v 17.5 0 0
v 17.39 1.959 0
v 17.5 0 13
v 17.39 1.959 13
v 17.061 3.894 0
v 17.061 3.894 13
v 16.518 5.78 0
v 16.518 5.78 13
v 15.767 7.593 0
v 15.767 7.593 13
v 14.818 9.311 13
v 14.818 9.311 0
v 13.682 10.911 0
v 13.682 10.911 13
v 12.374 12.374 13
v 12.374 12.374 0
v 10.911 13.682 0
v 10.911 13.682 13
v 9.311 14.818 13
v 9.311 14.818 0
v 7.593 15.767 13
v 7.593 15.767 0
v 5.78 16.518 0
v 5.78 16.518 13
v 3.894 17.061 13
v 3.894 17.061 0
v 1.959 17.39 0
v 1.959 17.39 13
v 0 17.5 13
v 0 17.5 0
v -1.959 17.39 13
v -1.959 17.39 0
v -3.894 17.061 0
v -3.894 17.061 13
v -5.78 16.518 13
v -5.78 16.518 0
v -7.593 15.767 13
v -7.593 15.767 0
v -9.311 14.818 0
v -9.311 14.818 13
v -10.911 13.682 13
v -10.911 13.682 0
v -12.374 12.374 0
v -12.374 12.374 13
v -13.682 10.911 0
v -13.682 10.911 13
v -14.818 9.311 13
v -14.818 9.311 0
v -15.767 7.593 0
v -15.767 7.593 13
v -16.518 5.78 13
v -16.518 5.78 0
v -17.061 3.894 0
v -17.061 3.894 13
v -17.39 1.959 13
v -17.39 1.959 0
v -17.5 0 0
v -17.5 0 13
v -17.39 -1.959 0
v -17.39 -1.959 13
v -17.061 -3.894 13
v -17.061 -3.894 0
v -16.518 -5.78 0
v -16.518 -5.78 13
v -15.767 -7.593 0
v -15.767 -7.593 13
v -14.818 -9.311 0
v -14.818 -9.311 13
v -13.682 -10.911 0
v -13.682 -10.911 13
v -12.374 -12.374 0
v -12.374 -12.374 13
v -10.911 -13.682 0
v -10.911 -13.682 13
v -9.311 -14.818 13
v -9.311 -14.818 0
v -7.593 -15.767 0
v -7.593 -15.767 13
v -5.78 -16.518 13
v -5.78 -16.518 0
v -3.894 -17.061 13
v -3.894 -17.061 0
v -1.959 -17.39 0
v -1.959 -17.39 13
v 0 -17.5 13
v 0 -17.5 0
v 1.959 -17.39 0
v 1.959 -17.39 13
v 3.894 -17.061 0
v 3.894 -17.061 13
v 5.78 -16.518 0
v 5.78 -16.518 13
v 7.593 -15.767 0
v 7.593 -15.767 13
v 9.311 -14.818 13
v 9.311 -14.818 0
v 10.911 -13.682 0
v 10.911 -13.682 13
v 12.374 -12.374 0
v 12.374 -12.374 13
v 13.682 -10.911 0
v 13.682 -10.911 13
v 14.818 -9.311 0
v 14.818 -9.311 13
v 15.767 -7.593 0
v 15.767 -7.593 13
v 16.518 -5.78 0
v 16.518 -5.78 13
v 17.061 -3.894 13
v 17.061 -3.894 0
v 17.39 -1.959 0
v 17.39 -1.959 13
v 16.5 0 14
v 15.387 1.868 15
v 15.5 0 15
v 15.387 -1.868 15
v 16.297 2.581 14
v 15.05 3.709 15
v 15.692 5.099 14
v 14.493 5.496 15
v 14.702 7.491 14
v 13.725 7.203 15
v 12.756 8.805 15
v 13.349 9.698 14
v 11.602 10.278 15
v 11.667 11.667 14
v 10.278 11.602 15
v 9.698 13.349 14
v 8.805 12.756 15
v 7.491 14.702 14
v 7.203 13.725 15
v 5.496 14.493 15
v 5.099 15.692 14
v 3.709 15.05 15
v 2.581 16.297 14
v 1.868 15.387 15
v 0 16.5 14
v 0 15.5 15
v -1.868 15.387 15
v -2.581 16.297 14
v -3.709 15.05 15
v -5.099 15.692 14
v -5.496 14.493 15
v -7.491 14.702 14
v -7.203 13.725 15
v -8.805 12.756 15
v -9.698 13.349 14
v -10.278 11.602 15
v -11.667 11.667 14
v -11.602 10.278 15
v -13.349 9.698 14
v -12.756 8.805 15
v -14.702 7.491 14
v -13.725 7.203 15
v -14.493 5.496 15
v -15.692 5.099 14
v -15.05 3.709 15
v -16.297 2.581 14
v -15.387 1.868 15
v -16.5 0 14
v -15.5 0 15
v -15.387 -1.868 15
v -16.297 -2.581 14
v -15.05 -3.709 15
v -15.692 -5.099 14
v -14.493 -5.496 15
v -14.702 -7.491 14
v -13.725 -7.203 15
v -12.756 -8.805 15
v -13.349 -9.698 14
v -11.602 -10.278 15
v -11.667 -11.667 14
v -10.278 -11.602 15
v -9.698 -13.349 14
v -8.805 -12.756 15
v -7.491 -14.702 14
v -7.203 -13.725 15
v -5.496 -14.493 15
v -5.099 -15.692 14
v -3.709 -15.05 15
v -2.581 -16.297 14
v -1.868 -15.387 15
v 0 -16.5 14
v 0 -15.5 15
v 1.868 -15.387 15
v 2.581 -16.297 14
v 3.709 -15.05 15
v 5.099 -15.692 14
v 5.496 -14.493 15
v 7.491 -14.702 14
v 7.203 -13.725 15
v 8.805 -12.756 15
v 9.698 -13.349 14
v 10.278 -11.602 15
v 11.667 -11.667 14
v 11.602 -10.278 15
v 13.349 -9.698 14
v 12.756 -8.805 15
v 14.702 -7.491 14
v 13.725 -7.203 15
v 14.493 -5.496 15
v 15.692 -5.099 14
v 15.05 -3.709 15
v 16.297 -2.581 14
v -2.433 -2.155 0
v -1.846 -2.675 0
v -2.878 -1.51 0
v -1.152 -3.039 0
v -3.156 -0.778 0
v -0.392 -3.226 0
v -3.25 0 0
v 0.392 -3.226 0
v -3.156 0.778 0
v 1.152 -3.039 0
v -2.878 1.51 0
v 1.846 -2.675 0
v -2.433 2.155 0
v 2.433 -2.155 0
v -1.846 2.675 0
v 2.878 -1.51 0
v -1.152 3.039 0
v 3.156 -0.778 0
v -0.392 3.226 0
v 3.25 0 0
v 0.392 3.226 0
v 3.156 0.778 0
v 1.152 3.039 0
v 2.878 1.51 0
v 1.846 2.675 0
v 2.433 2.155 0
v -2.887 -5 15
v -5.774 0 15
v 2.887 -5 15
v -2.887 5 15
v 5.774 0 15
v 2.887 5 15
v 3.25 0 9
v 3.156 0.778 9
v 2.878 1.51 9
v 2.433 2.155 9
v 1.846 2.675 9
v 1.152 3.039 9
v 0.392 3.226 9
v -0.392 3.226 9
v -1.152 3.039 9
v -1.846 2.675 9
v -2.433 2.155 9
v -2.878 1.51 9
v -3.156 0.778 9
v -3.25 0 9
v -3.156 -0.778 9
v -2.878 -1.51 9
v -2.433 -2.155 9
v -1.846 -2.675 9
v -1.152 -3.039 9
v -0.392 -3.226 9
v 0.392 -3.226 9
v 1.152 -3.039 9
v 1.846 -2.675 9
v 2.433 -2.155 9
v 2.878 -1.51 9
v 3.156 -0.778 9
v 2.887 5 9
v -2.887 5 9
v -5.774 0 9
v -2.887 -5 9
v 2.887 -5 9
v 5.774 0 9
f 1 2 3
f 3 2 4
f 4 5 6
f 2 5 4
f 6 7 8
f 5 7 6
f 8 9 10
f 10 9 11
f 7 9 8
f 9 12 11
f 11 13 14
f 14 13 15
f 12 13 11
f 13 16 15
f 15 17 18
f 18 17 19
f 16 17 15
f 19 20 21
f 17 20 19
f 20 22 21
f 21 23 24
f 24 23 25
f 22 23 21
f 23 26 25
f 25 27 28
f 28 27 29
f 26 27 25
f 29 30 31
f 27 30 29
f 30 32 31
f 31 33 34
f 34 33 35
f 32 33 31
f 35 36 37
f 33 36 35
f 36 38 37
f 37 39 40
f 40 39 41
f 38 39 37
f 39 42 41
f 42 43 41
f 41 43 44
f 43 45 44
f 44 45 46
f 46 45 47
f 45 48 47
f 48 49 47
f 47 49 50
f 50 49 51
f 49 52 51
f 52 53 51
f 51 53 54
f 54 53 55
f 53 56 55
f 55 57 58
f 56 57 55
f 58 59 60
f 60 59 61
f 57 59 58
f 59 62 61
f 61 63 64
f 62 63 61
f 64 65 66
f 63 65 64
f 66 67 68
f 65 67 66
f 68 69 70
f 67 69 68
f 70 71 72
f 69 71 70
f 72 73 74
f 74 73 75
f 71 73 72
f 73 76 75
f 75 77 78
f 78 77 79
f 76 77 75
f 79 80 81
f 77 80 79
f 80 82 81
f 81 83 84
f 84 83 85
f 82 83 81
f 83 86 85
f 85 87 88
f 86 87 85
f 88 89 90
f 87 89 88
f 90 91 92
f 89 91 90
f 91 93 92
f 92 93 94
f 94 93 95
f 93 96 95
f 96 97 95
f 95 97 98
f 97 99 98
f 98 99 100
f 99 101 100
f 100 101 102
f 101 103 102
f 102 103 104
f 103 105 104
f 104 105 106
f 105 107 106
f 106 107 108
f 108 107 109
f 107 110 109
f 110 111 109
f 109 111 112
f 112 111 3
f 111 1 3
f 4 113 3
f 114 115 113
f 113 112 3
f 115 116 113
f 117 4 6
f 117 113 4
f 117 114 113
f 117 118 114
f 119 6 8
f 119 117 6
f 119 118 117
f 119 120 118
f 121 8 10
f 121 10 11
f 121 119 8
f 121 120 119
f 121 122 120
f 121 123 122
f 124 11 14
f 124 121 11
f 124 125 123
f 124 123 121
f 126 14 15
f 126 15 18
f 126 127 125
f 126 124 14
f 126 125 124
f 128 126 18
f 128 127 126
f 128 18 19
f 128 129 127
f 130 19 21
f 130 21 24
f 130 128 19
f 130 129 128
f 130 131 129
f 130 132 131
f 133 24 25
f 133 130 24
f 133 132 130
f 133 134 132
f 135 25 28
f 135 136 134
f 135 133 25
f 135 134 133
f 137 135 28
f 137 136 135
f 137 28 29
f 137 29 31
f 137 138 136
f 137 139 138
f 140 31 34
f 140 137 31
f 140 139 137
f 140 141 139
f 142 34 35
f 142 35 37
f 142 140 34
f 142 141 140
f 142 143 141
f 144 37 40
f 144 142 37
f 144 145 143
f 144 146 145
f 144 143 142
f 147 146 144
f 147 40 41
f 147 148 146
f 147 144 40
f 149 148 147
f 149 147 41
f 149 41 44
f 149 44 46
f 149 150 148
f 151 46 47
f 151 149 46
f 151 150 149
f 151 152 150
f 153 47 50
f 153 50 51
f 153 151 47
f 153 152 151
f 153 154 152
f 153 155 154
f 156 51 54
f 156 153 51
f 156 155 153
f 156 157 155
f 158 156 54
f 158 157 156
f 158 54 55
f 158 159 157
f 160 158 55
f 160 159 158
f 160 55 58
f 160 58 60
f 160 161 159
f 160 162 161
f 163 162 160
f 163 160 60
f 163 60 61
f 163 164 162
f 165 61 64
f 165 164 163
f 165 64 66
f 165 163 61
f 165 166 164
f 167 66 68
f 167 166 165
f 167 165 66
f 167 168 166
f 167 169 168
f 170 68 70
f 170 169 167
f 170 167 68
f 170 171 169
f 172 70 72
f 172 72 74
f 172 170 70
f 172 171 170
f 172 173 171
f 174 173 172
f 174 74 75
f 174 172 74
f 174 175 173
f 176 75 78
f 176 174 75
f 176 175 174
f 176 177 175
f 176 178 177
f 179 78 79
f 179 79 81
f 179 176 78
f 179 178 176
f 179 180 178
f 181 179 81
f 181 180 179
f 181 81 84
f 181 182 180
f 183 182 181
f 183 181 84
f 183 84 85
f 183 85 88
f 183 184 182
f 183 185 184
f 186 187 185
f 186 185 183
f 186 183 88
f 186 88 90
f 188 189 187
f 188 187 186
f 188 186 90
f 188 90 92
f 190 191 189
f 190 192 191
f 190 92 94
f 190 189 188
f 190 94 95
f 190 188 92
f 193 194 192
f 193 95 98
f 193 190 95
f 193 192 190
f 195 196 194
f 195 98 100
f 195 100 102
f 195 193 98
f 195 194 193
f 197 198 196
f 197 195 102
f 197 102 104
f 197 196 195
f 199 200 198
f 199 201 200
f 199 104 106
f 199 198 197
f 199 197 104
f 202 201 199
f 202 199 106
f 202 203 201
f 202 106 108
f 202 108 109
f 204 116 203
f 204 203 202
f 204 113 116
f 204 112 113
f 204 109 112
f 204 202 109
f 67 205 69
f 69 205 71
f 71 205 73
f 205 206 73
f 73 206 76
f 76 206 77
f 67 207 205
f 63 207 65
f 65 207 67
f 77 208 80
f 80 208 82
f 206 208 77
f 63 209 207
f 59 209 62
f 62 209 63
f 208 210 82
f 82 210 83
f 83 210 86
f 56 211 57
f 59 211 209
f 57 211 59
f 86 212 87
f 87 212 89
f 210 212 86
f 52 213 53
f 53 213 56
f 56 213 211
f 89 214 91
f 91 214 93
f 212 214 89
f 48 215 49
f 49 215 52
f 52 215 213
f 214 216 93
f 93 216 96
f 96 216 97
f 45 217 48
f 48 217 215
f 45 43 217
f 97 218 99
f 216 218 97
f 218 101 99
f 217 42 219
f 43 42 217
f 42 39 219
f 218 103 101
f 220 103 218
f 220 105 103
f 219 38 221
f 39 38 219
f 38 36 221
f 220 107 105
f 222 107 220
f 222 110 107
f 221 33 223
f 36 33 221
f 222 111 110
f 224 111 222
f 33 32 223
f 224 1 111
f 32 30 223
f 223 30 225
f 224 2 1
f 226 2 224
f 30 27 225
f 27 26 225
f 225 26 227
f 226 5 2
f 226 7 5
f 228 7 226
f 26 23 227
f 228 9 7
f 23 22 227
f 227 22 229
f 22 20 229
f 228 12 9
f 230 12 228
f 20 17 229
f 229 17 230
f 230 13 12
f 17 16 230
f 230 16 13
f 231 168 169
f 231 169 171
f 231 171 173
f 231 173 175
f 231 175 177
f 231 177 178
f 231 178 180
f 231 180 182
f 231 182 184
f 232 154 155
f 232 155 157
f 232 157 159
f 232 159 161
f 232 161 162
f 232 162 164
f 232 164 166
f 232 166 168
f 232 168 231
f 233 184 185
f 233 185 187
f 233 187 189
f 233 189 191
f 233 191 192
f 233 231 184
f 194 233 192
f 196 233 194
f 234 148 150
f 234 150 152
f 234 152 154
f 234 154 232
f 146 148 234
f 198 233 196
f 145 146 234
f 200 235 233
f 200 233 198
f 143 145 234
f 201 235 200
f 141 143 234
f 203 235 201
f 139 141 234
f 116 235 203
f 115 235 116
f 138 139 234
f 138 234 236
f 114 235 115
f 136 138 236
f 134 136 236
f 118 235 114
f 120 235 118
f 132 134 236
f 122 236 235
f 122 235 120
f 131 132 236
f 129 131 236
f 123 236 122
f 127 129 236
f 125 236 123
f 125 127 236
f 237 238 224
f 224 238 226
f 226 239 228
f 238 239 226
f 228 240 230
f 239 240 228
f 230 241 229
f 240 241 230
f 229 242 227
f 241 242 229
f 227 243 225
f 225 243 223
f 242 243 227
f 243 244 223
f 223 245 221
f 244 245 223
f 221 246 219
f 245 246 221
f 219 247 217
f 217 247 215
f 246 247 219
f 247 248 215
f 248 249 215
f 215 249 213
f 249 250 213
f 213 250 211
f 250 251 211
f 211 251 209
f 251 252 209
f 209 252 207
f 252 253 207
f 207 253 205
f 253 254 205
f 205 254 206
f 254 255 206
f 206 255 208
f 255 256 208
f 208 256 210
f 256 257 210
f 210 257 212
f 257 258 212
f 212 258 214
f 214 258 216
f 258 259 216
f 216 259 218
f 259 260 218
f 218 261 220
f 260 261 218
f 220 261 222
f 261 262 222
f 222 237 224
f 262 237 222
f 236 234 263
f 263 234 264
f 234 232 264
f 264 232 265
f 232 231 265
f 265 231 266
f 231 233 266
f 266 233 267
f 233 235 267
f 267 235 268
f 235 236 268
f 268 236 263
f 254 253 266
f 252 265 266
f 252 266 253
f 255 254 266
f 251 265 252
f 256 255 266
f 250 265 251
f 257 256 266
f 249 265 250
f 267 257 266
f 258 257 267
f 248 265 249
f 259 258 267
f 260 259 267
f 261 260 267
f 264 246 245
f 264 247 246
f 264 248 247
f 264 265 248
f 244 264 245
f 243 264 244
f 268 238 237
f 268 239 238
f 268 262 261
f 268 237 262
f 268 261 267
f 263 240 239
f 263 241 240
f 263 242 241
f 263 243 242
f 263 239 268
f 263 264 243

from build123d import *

# Parameters (mm, degrees)
SKETCH_R        = 17.5
PAD_DEPTH       = 15
SKETCH001_R     = 3.25
POCKET_DEPTH    = 15.001
POCKET001_DEPTH = 6
CHAMFER_SIZE    = 2


with BuildPart() as part:
    # Sketch → Pad (new body)
    with BuildSketch(Plane.XY):
        Circle(SKETCH_R)
    extrude(amount=PAD_DEPTH)

    # Sketch001 (on Face3 of Pad) → Pocket (cut, through all)
    with BuildSketch(Plane.XY.offset(15)):
        Circle(SKETCH001_R)
    extrude(amount=-POCKET_DEPTH, mode=Mode.SUBTRACT)

    # Sketch002 (on Face3 of Pocket) → Pocket001 (cut)
    with BuildSketch(Plane.XY.offset(15)):
        Polygon((2.886751, 5), (-2.886751, 5), (-5.773503, 0), (-2.886751, -5), (2.886751, -5), (5.773503, 0), align=None)
    extrude(amount=-POCKET001_DEPTH, mode=Mode.SUBTRACT)

    # Chamfer
    chamfer_edges = [part.edges().sort_by_distance(p)[0] for p in [
        (-17.5, 0, 15),
    ]]
    chamfer(chamfer_edges, length=CHAMFER_SIZE)


solid = part.part
